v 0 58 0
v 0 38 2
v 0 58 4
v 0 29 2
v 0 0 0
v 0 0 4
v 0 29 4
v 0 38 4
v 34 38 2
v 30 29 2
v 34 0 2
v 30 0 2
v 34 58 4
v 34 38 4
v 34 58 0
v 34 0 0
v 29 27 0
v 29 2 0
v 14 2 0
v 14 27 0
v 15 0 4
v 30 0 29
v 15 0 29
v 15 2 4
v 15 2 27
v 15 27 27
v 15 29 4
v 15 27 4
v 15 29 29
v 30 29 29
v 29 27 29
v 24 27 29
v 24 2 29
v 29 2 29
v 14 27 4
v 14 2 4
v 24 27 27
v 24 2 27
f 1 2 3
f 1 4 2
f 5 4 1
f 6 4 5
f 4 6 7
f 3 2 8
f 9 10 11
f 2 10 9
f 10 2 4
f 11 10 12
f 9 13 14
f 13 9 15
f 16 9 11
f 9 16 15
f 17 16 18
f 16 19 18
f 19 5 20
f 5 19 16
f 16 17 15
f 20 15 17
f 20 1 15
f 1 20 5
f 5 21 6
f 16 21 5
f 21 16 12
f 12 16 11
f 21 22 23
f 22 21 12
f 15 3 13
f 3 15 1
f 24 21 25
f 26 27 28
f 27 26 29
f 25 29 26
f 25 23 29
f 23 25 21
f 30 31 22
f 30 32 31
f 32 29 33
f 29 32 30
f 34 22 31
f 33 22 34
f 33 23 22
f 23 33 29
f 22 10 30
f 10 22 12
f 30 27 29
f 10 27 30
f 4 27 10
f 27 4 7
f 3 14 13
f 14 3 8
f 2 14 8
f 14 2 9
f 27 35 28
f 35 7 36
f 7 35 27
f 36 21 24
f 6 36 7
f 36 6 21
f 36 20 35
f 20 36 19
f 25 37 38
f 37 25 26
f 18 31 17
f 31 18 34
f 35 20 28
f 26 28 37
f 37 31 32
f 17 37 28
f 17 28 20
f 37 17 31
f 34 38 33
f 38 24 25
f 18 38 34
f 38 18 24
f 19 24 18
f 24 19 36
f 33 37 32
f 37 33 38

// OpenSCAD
printBase = false;
printVertWing = true;
printButtonWing = false;


// Base
if (printBase)
difference(){
  cube([30, 58, 19]);
  translate([2, 2, -1])
    cube([26, 54, 18]);
  // USB hole
  for (i=[0:5]){
    translate([10-i/2, -1, 15-i])    
      cube([10+i, 40, 1]);
  }
  // Battery hole
  translate([20, 10, 8]){
      cube([15, 10, 7]);
  }  
  // APA102 hole
  translate([7, 56, 7]){
      cube([17, 20, 7]);
  }
}


// For vertical button feather wing
if (printVertWing)
difference(){  
  union(){
    cube([34, 58, 2]);
    translate([15, 0, 0])
    cube([15, 29, 29]);
    
    // zipties
    translate([0,58-(20),0])
      cube([34, 20, 4]);
    
    translate([0, 0, 0])
      cube([15, 29, 4]);
  }
  
  // vertical hole  
  translate([14, 2, -1])
    cube([15, 25, 28]);
  translate([24, 2, 2])
    cube([5, 25, 30]);
}

// For button feather wing
if (printButtonWing)
difference(){  
  union(){
    cube([30, 58, 2]);
    cube([30, 26, 4]);
    translate([0,58-(20+5),0])
      cube([30, 26, 4]);
    // Left wing
    translate([3, 3, -6])
      cube([24, 1, 7]);
    // Right wing
    translate([3, 55, -6])
      cube([24, 1, 7]);
  }
  translate([15, 13, -1])
    cylinder(r1=8, r2=7, 8);
}
